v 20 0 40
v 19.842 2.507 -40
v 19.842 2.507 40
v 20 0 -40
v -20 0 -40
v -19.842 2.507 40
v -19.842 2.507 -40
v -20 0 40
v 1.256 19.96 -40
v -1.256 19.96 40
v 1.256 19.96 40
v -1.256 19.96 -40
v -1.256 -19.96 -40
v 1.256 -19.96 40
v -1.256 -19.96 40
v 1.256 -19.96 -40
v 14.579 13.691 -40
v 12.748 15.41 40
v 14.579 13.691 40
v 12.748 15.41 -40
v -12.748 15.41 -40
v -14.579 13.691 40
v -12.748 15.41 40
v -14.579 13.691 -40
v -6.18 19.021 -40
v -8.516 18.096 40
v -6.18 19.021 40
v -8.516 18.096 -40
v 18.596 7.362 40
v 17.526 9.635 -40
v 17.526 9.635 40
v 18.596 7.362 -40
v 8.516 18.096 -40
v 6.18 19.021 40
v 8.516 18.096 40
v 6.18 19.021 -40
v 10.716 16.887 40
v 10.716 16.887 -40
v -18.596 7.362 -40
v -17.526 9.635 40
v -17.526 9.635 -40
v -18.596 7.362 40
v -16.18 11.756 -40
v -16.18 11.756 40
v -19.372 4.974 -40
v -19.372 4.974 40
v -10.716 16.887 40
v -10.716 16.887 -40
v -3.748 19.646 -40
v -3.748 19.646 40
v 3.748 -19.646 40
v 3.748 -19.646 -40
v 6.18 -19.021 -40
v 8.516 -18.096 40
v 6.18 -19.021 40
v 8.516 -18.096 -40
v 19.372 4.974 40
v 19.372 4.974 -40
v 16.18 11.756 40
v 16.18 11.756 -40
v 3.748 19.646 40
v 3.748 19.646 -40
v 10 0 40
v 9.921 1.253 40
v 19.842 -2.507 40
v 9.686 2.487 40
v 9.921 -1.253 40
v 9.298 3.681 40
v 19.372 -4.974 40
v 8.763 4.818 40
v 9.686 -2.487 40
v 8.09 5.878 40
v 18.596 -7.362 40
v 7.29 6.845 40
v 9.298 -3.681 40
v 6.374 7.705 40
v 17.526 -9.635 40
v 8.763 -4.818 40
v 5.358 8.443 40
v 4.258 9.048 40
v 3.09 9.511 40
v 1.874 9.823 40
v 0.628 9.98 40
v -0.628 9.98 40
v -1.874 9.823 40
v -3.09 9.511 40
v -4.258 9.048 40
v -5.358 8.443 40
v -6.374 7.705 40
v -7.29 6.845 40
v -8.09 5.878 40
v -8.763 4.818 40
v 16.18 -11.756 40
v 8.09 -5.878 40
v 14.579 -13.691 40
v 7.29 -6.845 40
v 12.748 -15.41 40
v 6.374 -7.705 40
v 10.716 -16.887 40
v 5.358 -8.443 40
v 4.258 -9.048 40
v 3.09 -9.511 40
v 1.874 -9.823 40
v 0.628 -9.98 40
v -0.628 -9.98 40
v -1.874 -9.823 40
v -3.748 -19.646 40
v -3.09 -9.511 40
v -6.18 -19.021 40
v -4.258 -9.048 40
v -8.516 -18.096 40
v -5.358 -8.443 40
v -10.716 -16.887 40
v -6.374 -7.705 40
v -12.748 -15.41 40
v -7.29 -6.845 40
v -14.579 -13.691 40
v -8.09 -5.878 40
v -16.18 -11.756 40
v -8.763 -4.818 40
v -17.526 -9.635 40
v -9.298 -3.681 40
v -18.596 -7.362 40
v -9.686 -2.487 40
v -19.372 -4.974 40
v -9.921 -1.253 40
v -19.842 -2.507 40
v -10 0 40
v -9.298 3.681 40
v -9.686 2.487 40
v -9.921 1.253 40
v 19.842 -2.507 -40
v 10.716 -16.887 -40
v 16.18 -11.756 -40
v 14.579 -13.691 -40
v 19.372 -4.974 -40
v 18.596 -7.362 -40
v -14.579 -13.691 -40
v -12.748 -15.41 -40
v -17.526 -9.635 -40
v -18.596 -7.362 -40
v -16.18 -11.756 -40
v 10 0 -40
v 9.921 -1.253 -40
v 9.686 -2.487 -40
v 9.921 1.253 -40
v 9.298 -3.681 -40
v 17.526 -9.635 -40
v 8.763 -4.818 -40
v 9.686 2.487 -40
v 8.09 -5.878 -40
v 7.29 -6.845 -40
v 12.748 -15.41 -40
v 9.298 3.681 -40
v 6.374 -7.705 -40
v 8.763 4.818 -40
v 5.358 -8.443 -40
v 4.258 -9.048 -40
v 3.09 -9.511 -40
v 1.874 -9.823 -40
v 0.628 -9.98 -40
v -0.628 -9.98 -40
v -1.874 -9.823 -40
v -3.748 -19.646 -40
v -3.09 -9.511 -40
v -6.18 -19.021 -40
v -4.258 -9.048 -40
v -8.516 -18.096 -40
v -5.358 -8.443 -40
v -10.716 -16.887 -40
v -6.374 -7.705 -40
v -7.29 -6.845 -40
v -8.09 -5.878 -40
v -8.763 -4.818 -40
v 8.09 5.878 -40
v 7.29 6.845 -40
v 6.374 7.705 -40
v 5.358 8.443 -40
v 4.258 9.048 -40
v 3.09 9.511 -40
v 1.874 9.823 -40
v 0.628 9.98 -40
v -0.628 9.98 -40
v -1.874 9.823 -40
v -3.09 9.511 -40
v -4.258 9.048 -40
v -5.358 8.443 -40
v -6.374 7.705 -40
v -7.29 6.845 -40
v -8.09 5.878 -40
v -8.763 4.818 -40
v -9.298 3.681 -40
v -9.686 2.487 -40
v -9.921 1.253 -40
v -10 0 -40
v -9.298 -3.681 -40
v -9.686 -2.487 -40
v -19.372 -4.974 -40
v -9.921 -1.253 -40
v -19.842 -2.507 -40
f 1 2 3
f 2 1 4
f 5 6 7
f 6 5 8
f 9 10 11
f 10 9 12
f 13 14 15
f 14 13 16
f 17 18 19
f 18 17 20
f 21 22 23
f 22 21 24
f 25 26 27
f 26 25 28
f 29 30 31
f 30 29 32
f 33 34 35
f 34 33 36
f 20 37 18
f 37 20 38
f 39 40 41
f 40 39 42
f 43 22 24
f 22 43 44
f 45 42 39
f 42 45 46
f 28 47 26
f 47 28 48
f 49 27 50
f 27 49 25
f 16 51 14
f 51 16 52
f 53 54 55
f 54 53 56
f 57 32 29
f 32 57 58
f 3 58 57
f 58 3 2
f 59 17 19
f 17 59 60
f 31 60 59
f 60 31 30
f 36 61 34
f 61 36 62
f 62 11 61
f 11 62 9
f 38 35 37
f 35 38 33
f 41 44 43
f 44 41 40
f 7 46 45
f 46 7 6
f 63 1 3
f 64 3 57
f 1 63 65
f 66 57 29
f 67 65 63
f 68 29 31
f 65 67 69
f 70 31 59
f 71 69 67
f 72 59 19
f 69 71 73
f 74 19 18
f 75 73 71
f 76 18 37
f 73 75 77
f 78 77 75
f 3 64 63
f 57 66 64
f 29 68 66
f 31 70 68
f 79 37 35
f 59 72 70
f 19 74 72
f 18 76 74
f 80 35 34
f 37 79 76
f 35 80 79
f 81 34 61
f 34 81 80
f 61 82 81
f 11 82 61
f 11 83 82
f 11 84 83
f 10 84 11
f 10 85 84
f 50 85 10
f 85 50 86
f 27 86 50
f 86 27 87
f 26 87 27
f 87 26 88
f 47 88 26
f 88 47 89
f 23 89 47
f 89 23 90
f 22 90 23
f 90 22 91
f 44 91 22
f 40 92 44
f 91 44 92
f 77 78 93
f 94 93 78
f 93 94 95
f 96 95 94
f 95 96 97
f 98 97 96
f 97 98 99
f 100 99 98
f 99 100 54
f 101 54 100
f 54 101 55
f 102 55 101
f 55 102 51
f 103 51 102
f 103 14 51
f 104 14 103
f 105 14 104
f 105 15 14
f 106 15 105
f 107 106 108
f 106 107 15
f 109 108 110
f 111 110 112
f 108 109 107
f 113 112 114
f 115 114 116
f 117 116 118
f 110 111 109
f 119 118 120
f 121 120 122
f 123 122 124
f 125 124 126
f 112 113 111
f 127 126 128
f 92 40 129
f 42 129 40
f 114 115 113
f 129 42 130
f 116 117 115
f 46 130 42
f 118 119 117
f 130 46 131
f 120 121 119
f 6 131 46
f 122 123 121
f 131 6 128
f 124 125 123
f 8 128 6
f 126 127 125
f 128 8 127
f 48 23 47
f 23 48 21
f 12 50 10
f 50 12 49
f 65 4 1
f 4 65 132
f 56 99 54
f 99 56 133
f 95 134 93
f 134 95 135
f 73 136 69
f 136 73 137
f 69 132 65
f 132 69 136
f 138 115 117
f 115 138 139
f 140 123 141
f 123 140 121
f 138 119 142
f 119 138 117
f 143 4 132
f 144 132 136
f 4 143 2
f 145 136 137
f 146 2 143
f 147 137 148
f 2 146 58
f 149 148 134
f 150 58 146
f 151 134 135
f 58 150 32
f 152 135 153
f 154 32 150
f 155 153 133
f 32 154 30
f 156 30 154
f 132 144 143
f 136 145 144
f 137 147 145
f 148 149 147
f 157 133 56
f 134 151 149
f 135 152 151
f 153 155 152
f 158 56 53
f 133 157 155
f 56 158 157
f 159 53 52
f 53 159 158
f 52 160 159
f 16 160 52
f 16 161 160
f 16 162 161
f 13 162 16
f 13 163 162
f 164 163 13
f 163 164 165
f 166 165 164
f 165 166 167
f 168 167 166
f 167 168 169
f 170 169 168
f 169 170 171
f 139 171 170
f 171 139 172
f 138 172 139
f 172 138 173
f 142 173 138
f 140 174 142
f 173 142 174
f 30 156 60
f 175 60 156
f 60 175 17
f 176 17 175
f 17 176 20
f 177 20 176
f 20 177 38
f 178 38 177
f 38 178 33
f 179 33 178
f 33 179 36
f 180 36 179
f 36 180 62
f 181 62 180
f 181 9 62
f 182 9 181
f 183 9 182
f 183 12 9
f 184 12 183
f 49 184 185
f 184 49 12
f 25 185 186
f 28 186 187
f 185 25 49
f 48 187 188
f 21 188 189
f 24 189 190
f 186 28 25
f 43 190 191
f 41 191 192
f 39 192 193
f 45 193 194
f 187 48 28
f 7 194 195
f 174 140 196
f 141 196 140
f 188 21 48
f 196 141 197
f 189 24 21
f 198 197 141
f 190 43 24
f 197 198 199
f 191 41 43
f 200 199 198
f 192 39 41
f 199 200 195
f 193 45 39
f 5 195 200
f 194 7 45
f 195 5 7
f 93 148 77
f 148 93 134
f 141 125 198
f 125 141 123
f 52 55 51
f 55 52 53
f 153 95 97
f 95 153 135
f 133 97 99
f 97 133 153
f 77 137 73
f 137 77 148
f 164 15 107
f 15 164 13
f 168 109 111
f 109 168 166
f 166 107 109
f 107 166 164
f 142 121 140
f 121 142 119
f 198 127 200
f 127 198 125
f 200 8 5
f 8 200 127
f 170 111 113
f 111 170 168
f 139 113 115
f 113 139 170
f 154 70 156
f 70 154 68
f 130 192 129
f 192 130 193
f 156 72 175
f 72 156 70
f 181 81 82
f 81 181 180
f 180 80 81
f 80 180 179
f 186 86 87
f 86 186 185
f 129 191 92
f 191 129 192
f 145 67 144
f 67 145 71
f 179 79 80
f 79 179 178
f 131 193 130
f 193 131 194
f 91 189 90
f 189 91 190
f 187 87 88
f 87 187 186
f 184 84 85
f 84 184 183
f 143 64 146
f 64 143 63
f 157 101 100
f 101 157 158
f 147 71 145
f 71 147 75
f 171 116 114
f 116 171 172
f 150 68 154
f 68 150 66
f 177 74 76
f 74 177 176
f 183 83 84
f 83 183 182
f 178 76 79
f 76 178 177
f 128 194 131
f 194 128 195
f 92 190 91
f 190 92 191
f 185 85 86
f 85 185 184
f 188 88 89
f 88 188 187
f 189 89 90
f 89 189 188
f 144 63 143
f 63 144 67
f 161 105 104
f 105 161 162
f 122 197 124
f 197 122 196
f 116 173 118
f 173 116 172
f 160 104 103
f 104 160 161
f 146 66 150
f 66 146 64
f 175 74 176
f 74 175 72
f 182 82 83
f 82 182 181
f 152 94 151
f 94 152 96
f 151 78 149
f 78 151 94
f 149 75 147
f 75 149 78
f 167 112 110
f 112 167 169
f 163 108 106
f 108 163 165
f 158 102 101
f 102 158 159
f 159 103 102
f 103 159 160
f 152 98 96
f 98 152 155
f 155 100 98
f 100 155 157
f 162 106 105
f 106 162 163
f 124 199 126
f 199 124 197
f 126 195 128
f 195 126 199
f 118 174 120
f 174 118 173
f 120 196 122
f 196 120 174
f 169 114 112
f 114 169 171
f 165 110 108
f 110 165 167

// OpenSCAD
$fn = 50;


difference() {
	union() {
		translate(v = [0, 0, -40.0000000000]) {
			cylinder(h = 80, r = 20.0000000000);
		}
	}
	union() {
		translate(v = [0, 0, -100.0000000000]) {
			cylinder(h = 200, r = 10);
		}
	}
}
